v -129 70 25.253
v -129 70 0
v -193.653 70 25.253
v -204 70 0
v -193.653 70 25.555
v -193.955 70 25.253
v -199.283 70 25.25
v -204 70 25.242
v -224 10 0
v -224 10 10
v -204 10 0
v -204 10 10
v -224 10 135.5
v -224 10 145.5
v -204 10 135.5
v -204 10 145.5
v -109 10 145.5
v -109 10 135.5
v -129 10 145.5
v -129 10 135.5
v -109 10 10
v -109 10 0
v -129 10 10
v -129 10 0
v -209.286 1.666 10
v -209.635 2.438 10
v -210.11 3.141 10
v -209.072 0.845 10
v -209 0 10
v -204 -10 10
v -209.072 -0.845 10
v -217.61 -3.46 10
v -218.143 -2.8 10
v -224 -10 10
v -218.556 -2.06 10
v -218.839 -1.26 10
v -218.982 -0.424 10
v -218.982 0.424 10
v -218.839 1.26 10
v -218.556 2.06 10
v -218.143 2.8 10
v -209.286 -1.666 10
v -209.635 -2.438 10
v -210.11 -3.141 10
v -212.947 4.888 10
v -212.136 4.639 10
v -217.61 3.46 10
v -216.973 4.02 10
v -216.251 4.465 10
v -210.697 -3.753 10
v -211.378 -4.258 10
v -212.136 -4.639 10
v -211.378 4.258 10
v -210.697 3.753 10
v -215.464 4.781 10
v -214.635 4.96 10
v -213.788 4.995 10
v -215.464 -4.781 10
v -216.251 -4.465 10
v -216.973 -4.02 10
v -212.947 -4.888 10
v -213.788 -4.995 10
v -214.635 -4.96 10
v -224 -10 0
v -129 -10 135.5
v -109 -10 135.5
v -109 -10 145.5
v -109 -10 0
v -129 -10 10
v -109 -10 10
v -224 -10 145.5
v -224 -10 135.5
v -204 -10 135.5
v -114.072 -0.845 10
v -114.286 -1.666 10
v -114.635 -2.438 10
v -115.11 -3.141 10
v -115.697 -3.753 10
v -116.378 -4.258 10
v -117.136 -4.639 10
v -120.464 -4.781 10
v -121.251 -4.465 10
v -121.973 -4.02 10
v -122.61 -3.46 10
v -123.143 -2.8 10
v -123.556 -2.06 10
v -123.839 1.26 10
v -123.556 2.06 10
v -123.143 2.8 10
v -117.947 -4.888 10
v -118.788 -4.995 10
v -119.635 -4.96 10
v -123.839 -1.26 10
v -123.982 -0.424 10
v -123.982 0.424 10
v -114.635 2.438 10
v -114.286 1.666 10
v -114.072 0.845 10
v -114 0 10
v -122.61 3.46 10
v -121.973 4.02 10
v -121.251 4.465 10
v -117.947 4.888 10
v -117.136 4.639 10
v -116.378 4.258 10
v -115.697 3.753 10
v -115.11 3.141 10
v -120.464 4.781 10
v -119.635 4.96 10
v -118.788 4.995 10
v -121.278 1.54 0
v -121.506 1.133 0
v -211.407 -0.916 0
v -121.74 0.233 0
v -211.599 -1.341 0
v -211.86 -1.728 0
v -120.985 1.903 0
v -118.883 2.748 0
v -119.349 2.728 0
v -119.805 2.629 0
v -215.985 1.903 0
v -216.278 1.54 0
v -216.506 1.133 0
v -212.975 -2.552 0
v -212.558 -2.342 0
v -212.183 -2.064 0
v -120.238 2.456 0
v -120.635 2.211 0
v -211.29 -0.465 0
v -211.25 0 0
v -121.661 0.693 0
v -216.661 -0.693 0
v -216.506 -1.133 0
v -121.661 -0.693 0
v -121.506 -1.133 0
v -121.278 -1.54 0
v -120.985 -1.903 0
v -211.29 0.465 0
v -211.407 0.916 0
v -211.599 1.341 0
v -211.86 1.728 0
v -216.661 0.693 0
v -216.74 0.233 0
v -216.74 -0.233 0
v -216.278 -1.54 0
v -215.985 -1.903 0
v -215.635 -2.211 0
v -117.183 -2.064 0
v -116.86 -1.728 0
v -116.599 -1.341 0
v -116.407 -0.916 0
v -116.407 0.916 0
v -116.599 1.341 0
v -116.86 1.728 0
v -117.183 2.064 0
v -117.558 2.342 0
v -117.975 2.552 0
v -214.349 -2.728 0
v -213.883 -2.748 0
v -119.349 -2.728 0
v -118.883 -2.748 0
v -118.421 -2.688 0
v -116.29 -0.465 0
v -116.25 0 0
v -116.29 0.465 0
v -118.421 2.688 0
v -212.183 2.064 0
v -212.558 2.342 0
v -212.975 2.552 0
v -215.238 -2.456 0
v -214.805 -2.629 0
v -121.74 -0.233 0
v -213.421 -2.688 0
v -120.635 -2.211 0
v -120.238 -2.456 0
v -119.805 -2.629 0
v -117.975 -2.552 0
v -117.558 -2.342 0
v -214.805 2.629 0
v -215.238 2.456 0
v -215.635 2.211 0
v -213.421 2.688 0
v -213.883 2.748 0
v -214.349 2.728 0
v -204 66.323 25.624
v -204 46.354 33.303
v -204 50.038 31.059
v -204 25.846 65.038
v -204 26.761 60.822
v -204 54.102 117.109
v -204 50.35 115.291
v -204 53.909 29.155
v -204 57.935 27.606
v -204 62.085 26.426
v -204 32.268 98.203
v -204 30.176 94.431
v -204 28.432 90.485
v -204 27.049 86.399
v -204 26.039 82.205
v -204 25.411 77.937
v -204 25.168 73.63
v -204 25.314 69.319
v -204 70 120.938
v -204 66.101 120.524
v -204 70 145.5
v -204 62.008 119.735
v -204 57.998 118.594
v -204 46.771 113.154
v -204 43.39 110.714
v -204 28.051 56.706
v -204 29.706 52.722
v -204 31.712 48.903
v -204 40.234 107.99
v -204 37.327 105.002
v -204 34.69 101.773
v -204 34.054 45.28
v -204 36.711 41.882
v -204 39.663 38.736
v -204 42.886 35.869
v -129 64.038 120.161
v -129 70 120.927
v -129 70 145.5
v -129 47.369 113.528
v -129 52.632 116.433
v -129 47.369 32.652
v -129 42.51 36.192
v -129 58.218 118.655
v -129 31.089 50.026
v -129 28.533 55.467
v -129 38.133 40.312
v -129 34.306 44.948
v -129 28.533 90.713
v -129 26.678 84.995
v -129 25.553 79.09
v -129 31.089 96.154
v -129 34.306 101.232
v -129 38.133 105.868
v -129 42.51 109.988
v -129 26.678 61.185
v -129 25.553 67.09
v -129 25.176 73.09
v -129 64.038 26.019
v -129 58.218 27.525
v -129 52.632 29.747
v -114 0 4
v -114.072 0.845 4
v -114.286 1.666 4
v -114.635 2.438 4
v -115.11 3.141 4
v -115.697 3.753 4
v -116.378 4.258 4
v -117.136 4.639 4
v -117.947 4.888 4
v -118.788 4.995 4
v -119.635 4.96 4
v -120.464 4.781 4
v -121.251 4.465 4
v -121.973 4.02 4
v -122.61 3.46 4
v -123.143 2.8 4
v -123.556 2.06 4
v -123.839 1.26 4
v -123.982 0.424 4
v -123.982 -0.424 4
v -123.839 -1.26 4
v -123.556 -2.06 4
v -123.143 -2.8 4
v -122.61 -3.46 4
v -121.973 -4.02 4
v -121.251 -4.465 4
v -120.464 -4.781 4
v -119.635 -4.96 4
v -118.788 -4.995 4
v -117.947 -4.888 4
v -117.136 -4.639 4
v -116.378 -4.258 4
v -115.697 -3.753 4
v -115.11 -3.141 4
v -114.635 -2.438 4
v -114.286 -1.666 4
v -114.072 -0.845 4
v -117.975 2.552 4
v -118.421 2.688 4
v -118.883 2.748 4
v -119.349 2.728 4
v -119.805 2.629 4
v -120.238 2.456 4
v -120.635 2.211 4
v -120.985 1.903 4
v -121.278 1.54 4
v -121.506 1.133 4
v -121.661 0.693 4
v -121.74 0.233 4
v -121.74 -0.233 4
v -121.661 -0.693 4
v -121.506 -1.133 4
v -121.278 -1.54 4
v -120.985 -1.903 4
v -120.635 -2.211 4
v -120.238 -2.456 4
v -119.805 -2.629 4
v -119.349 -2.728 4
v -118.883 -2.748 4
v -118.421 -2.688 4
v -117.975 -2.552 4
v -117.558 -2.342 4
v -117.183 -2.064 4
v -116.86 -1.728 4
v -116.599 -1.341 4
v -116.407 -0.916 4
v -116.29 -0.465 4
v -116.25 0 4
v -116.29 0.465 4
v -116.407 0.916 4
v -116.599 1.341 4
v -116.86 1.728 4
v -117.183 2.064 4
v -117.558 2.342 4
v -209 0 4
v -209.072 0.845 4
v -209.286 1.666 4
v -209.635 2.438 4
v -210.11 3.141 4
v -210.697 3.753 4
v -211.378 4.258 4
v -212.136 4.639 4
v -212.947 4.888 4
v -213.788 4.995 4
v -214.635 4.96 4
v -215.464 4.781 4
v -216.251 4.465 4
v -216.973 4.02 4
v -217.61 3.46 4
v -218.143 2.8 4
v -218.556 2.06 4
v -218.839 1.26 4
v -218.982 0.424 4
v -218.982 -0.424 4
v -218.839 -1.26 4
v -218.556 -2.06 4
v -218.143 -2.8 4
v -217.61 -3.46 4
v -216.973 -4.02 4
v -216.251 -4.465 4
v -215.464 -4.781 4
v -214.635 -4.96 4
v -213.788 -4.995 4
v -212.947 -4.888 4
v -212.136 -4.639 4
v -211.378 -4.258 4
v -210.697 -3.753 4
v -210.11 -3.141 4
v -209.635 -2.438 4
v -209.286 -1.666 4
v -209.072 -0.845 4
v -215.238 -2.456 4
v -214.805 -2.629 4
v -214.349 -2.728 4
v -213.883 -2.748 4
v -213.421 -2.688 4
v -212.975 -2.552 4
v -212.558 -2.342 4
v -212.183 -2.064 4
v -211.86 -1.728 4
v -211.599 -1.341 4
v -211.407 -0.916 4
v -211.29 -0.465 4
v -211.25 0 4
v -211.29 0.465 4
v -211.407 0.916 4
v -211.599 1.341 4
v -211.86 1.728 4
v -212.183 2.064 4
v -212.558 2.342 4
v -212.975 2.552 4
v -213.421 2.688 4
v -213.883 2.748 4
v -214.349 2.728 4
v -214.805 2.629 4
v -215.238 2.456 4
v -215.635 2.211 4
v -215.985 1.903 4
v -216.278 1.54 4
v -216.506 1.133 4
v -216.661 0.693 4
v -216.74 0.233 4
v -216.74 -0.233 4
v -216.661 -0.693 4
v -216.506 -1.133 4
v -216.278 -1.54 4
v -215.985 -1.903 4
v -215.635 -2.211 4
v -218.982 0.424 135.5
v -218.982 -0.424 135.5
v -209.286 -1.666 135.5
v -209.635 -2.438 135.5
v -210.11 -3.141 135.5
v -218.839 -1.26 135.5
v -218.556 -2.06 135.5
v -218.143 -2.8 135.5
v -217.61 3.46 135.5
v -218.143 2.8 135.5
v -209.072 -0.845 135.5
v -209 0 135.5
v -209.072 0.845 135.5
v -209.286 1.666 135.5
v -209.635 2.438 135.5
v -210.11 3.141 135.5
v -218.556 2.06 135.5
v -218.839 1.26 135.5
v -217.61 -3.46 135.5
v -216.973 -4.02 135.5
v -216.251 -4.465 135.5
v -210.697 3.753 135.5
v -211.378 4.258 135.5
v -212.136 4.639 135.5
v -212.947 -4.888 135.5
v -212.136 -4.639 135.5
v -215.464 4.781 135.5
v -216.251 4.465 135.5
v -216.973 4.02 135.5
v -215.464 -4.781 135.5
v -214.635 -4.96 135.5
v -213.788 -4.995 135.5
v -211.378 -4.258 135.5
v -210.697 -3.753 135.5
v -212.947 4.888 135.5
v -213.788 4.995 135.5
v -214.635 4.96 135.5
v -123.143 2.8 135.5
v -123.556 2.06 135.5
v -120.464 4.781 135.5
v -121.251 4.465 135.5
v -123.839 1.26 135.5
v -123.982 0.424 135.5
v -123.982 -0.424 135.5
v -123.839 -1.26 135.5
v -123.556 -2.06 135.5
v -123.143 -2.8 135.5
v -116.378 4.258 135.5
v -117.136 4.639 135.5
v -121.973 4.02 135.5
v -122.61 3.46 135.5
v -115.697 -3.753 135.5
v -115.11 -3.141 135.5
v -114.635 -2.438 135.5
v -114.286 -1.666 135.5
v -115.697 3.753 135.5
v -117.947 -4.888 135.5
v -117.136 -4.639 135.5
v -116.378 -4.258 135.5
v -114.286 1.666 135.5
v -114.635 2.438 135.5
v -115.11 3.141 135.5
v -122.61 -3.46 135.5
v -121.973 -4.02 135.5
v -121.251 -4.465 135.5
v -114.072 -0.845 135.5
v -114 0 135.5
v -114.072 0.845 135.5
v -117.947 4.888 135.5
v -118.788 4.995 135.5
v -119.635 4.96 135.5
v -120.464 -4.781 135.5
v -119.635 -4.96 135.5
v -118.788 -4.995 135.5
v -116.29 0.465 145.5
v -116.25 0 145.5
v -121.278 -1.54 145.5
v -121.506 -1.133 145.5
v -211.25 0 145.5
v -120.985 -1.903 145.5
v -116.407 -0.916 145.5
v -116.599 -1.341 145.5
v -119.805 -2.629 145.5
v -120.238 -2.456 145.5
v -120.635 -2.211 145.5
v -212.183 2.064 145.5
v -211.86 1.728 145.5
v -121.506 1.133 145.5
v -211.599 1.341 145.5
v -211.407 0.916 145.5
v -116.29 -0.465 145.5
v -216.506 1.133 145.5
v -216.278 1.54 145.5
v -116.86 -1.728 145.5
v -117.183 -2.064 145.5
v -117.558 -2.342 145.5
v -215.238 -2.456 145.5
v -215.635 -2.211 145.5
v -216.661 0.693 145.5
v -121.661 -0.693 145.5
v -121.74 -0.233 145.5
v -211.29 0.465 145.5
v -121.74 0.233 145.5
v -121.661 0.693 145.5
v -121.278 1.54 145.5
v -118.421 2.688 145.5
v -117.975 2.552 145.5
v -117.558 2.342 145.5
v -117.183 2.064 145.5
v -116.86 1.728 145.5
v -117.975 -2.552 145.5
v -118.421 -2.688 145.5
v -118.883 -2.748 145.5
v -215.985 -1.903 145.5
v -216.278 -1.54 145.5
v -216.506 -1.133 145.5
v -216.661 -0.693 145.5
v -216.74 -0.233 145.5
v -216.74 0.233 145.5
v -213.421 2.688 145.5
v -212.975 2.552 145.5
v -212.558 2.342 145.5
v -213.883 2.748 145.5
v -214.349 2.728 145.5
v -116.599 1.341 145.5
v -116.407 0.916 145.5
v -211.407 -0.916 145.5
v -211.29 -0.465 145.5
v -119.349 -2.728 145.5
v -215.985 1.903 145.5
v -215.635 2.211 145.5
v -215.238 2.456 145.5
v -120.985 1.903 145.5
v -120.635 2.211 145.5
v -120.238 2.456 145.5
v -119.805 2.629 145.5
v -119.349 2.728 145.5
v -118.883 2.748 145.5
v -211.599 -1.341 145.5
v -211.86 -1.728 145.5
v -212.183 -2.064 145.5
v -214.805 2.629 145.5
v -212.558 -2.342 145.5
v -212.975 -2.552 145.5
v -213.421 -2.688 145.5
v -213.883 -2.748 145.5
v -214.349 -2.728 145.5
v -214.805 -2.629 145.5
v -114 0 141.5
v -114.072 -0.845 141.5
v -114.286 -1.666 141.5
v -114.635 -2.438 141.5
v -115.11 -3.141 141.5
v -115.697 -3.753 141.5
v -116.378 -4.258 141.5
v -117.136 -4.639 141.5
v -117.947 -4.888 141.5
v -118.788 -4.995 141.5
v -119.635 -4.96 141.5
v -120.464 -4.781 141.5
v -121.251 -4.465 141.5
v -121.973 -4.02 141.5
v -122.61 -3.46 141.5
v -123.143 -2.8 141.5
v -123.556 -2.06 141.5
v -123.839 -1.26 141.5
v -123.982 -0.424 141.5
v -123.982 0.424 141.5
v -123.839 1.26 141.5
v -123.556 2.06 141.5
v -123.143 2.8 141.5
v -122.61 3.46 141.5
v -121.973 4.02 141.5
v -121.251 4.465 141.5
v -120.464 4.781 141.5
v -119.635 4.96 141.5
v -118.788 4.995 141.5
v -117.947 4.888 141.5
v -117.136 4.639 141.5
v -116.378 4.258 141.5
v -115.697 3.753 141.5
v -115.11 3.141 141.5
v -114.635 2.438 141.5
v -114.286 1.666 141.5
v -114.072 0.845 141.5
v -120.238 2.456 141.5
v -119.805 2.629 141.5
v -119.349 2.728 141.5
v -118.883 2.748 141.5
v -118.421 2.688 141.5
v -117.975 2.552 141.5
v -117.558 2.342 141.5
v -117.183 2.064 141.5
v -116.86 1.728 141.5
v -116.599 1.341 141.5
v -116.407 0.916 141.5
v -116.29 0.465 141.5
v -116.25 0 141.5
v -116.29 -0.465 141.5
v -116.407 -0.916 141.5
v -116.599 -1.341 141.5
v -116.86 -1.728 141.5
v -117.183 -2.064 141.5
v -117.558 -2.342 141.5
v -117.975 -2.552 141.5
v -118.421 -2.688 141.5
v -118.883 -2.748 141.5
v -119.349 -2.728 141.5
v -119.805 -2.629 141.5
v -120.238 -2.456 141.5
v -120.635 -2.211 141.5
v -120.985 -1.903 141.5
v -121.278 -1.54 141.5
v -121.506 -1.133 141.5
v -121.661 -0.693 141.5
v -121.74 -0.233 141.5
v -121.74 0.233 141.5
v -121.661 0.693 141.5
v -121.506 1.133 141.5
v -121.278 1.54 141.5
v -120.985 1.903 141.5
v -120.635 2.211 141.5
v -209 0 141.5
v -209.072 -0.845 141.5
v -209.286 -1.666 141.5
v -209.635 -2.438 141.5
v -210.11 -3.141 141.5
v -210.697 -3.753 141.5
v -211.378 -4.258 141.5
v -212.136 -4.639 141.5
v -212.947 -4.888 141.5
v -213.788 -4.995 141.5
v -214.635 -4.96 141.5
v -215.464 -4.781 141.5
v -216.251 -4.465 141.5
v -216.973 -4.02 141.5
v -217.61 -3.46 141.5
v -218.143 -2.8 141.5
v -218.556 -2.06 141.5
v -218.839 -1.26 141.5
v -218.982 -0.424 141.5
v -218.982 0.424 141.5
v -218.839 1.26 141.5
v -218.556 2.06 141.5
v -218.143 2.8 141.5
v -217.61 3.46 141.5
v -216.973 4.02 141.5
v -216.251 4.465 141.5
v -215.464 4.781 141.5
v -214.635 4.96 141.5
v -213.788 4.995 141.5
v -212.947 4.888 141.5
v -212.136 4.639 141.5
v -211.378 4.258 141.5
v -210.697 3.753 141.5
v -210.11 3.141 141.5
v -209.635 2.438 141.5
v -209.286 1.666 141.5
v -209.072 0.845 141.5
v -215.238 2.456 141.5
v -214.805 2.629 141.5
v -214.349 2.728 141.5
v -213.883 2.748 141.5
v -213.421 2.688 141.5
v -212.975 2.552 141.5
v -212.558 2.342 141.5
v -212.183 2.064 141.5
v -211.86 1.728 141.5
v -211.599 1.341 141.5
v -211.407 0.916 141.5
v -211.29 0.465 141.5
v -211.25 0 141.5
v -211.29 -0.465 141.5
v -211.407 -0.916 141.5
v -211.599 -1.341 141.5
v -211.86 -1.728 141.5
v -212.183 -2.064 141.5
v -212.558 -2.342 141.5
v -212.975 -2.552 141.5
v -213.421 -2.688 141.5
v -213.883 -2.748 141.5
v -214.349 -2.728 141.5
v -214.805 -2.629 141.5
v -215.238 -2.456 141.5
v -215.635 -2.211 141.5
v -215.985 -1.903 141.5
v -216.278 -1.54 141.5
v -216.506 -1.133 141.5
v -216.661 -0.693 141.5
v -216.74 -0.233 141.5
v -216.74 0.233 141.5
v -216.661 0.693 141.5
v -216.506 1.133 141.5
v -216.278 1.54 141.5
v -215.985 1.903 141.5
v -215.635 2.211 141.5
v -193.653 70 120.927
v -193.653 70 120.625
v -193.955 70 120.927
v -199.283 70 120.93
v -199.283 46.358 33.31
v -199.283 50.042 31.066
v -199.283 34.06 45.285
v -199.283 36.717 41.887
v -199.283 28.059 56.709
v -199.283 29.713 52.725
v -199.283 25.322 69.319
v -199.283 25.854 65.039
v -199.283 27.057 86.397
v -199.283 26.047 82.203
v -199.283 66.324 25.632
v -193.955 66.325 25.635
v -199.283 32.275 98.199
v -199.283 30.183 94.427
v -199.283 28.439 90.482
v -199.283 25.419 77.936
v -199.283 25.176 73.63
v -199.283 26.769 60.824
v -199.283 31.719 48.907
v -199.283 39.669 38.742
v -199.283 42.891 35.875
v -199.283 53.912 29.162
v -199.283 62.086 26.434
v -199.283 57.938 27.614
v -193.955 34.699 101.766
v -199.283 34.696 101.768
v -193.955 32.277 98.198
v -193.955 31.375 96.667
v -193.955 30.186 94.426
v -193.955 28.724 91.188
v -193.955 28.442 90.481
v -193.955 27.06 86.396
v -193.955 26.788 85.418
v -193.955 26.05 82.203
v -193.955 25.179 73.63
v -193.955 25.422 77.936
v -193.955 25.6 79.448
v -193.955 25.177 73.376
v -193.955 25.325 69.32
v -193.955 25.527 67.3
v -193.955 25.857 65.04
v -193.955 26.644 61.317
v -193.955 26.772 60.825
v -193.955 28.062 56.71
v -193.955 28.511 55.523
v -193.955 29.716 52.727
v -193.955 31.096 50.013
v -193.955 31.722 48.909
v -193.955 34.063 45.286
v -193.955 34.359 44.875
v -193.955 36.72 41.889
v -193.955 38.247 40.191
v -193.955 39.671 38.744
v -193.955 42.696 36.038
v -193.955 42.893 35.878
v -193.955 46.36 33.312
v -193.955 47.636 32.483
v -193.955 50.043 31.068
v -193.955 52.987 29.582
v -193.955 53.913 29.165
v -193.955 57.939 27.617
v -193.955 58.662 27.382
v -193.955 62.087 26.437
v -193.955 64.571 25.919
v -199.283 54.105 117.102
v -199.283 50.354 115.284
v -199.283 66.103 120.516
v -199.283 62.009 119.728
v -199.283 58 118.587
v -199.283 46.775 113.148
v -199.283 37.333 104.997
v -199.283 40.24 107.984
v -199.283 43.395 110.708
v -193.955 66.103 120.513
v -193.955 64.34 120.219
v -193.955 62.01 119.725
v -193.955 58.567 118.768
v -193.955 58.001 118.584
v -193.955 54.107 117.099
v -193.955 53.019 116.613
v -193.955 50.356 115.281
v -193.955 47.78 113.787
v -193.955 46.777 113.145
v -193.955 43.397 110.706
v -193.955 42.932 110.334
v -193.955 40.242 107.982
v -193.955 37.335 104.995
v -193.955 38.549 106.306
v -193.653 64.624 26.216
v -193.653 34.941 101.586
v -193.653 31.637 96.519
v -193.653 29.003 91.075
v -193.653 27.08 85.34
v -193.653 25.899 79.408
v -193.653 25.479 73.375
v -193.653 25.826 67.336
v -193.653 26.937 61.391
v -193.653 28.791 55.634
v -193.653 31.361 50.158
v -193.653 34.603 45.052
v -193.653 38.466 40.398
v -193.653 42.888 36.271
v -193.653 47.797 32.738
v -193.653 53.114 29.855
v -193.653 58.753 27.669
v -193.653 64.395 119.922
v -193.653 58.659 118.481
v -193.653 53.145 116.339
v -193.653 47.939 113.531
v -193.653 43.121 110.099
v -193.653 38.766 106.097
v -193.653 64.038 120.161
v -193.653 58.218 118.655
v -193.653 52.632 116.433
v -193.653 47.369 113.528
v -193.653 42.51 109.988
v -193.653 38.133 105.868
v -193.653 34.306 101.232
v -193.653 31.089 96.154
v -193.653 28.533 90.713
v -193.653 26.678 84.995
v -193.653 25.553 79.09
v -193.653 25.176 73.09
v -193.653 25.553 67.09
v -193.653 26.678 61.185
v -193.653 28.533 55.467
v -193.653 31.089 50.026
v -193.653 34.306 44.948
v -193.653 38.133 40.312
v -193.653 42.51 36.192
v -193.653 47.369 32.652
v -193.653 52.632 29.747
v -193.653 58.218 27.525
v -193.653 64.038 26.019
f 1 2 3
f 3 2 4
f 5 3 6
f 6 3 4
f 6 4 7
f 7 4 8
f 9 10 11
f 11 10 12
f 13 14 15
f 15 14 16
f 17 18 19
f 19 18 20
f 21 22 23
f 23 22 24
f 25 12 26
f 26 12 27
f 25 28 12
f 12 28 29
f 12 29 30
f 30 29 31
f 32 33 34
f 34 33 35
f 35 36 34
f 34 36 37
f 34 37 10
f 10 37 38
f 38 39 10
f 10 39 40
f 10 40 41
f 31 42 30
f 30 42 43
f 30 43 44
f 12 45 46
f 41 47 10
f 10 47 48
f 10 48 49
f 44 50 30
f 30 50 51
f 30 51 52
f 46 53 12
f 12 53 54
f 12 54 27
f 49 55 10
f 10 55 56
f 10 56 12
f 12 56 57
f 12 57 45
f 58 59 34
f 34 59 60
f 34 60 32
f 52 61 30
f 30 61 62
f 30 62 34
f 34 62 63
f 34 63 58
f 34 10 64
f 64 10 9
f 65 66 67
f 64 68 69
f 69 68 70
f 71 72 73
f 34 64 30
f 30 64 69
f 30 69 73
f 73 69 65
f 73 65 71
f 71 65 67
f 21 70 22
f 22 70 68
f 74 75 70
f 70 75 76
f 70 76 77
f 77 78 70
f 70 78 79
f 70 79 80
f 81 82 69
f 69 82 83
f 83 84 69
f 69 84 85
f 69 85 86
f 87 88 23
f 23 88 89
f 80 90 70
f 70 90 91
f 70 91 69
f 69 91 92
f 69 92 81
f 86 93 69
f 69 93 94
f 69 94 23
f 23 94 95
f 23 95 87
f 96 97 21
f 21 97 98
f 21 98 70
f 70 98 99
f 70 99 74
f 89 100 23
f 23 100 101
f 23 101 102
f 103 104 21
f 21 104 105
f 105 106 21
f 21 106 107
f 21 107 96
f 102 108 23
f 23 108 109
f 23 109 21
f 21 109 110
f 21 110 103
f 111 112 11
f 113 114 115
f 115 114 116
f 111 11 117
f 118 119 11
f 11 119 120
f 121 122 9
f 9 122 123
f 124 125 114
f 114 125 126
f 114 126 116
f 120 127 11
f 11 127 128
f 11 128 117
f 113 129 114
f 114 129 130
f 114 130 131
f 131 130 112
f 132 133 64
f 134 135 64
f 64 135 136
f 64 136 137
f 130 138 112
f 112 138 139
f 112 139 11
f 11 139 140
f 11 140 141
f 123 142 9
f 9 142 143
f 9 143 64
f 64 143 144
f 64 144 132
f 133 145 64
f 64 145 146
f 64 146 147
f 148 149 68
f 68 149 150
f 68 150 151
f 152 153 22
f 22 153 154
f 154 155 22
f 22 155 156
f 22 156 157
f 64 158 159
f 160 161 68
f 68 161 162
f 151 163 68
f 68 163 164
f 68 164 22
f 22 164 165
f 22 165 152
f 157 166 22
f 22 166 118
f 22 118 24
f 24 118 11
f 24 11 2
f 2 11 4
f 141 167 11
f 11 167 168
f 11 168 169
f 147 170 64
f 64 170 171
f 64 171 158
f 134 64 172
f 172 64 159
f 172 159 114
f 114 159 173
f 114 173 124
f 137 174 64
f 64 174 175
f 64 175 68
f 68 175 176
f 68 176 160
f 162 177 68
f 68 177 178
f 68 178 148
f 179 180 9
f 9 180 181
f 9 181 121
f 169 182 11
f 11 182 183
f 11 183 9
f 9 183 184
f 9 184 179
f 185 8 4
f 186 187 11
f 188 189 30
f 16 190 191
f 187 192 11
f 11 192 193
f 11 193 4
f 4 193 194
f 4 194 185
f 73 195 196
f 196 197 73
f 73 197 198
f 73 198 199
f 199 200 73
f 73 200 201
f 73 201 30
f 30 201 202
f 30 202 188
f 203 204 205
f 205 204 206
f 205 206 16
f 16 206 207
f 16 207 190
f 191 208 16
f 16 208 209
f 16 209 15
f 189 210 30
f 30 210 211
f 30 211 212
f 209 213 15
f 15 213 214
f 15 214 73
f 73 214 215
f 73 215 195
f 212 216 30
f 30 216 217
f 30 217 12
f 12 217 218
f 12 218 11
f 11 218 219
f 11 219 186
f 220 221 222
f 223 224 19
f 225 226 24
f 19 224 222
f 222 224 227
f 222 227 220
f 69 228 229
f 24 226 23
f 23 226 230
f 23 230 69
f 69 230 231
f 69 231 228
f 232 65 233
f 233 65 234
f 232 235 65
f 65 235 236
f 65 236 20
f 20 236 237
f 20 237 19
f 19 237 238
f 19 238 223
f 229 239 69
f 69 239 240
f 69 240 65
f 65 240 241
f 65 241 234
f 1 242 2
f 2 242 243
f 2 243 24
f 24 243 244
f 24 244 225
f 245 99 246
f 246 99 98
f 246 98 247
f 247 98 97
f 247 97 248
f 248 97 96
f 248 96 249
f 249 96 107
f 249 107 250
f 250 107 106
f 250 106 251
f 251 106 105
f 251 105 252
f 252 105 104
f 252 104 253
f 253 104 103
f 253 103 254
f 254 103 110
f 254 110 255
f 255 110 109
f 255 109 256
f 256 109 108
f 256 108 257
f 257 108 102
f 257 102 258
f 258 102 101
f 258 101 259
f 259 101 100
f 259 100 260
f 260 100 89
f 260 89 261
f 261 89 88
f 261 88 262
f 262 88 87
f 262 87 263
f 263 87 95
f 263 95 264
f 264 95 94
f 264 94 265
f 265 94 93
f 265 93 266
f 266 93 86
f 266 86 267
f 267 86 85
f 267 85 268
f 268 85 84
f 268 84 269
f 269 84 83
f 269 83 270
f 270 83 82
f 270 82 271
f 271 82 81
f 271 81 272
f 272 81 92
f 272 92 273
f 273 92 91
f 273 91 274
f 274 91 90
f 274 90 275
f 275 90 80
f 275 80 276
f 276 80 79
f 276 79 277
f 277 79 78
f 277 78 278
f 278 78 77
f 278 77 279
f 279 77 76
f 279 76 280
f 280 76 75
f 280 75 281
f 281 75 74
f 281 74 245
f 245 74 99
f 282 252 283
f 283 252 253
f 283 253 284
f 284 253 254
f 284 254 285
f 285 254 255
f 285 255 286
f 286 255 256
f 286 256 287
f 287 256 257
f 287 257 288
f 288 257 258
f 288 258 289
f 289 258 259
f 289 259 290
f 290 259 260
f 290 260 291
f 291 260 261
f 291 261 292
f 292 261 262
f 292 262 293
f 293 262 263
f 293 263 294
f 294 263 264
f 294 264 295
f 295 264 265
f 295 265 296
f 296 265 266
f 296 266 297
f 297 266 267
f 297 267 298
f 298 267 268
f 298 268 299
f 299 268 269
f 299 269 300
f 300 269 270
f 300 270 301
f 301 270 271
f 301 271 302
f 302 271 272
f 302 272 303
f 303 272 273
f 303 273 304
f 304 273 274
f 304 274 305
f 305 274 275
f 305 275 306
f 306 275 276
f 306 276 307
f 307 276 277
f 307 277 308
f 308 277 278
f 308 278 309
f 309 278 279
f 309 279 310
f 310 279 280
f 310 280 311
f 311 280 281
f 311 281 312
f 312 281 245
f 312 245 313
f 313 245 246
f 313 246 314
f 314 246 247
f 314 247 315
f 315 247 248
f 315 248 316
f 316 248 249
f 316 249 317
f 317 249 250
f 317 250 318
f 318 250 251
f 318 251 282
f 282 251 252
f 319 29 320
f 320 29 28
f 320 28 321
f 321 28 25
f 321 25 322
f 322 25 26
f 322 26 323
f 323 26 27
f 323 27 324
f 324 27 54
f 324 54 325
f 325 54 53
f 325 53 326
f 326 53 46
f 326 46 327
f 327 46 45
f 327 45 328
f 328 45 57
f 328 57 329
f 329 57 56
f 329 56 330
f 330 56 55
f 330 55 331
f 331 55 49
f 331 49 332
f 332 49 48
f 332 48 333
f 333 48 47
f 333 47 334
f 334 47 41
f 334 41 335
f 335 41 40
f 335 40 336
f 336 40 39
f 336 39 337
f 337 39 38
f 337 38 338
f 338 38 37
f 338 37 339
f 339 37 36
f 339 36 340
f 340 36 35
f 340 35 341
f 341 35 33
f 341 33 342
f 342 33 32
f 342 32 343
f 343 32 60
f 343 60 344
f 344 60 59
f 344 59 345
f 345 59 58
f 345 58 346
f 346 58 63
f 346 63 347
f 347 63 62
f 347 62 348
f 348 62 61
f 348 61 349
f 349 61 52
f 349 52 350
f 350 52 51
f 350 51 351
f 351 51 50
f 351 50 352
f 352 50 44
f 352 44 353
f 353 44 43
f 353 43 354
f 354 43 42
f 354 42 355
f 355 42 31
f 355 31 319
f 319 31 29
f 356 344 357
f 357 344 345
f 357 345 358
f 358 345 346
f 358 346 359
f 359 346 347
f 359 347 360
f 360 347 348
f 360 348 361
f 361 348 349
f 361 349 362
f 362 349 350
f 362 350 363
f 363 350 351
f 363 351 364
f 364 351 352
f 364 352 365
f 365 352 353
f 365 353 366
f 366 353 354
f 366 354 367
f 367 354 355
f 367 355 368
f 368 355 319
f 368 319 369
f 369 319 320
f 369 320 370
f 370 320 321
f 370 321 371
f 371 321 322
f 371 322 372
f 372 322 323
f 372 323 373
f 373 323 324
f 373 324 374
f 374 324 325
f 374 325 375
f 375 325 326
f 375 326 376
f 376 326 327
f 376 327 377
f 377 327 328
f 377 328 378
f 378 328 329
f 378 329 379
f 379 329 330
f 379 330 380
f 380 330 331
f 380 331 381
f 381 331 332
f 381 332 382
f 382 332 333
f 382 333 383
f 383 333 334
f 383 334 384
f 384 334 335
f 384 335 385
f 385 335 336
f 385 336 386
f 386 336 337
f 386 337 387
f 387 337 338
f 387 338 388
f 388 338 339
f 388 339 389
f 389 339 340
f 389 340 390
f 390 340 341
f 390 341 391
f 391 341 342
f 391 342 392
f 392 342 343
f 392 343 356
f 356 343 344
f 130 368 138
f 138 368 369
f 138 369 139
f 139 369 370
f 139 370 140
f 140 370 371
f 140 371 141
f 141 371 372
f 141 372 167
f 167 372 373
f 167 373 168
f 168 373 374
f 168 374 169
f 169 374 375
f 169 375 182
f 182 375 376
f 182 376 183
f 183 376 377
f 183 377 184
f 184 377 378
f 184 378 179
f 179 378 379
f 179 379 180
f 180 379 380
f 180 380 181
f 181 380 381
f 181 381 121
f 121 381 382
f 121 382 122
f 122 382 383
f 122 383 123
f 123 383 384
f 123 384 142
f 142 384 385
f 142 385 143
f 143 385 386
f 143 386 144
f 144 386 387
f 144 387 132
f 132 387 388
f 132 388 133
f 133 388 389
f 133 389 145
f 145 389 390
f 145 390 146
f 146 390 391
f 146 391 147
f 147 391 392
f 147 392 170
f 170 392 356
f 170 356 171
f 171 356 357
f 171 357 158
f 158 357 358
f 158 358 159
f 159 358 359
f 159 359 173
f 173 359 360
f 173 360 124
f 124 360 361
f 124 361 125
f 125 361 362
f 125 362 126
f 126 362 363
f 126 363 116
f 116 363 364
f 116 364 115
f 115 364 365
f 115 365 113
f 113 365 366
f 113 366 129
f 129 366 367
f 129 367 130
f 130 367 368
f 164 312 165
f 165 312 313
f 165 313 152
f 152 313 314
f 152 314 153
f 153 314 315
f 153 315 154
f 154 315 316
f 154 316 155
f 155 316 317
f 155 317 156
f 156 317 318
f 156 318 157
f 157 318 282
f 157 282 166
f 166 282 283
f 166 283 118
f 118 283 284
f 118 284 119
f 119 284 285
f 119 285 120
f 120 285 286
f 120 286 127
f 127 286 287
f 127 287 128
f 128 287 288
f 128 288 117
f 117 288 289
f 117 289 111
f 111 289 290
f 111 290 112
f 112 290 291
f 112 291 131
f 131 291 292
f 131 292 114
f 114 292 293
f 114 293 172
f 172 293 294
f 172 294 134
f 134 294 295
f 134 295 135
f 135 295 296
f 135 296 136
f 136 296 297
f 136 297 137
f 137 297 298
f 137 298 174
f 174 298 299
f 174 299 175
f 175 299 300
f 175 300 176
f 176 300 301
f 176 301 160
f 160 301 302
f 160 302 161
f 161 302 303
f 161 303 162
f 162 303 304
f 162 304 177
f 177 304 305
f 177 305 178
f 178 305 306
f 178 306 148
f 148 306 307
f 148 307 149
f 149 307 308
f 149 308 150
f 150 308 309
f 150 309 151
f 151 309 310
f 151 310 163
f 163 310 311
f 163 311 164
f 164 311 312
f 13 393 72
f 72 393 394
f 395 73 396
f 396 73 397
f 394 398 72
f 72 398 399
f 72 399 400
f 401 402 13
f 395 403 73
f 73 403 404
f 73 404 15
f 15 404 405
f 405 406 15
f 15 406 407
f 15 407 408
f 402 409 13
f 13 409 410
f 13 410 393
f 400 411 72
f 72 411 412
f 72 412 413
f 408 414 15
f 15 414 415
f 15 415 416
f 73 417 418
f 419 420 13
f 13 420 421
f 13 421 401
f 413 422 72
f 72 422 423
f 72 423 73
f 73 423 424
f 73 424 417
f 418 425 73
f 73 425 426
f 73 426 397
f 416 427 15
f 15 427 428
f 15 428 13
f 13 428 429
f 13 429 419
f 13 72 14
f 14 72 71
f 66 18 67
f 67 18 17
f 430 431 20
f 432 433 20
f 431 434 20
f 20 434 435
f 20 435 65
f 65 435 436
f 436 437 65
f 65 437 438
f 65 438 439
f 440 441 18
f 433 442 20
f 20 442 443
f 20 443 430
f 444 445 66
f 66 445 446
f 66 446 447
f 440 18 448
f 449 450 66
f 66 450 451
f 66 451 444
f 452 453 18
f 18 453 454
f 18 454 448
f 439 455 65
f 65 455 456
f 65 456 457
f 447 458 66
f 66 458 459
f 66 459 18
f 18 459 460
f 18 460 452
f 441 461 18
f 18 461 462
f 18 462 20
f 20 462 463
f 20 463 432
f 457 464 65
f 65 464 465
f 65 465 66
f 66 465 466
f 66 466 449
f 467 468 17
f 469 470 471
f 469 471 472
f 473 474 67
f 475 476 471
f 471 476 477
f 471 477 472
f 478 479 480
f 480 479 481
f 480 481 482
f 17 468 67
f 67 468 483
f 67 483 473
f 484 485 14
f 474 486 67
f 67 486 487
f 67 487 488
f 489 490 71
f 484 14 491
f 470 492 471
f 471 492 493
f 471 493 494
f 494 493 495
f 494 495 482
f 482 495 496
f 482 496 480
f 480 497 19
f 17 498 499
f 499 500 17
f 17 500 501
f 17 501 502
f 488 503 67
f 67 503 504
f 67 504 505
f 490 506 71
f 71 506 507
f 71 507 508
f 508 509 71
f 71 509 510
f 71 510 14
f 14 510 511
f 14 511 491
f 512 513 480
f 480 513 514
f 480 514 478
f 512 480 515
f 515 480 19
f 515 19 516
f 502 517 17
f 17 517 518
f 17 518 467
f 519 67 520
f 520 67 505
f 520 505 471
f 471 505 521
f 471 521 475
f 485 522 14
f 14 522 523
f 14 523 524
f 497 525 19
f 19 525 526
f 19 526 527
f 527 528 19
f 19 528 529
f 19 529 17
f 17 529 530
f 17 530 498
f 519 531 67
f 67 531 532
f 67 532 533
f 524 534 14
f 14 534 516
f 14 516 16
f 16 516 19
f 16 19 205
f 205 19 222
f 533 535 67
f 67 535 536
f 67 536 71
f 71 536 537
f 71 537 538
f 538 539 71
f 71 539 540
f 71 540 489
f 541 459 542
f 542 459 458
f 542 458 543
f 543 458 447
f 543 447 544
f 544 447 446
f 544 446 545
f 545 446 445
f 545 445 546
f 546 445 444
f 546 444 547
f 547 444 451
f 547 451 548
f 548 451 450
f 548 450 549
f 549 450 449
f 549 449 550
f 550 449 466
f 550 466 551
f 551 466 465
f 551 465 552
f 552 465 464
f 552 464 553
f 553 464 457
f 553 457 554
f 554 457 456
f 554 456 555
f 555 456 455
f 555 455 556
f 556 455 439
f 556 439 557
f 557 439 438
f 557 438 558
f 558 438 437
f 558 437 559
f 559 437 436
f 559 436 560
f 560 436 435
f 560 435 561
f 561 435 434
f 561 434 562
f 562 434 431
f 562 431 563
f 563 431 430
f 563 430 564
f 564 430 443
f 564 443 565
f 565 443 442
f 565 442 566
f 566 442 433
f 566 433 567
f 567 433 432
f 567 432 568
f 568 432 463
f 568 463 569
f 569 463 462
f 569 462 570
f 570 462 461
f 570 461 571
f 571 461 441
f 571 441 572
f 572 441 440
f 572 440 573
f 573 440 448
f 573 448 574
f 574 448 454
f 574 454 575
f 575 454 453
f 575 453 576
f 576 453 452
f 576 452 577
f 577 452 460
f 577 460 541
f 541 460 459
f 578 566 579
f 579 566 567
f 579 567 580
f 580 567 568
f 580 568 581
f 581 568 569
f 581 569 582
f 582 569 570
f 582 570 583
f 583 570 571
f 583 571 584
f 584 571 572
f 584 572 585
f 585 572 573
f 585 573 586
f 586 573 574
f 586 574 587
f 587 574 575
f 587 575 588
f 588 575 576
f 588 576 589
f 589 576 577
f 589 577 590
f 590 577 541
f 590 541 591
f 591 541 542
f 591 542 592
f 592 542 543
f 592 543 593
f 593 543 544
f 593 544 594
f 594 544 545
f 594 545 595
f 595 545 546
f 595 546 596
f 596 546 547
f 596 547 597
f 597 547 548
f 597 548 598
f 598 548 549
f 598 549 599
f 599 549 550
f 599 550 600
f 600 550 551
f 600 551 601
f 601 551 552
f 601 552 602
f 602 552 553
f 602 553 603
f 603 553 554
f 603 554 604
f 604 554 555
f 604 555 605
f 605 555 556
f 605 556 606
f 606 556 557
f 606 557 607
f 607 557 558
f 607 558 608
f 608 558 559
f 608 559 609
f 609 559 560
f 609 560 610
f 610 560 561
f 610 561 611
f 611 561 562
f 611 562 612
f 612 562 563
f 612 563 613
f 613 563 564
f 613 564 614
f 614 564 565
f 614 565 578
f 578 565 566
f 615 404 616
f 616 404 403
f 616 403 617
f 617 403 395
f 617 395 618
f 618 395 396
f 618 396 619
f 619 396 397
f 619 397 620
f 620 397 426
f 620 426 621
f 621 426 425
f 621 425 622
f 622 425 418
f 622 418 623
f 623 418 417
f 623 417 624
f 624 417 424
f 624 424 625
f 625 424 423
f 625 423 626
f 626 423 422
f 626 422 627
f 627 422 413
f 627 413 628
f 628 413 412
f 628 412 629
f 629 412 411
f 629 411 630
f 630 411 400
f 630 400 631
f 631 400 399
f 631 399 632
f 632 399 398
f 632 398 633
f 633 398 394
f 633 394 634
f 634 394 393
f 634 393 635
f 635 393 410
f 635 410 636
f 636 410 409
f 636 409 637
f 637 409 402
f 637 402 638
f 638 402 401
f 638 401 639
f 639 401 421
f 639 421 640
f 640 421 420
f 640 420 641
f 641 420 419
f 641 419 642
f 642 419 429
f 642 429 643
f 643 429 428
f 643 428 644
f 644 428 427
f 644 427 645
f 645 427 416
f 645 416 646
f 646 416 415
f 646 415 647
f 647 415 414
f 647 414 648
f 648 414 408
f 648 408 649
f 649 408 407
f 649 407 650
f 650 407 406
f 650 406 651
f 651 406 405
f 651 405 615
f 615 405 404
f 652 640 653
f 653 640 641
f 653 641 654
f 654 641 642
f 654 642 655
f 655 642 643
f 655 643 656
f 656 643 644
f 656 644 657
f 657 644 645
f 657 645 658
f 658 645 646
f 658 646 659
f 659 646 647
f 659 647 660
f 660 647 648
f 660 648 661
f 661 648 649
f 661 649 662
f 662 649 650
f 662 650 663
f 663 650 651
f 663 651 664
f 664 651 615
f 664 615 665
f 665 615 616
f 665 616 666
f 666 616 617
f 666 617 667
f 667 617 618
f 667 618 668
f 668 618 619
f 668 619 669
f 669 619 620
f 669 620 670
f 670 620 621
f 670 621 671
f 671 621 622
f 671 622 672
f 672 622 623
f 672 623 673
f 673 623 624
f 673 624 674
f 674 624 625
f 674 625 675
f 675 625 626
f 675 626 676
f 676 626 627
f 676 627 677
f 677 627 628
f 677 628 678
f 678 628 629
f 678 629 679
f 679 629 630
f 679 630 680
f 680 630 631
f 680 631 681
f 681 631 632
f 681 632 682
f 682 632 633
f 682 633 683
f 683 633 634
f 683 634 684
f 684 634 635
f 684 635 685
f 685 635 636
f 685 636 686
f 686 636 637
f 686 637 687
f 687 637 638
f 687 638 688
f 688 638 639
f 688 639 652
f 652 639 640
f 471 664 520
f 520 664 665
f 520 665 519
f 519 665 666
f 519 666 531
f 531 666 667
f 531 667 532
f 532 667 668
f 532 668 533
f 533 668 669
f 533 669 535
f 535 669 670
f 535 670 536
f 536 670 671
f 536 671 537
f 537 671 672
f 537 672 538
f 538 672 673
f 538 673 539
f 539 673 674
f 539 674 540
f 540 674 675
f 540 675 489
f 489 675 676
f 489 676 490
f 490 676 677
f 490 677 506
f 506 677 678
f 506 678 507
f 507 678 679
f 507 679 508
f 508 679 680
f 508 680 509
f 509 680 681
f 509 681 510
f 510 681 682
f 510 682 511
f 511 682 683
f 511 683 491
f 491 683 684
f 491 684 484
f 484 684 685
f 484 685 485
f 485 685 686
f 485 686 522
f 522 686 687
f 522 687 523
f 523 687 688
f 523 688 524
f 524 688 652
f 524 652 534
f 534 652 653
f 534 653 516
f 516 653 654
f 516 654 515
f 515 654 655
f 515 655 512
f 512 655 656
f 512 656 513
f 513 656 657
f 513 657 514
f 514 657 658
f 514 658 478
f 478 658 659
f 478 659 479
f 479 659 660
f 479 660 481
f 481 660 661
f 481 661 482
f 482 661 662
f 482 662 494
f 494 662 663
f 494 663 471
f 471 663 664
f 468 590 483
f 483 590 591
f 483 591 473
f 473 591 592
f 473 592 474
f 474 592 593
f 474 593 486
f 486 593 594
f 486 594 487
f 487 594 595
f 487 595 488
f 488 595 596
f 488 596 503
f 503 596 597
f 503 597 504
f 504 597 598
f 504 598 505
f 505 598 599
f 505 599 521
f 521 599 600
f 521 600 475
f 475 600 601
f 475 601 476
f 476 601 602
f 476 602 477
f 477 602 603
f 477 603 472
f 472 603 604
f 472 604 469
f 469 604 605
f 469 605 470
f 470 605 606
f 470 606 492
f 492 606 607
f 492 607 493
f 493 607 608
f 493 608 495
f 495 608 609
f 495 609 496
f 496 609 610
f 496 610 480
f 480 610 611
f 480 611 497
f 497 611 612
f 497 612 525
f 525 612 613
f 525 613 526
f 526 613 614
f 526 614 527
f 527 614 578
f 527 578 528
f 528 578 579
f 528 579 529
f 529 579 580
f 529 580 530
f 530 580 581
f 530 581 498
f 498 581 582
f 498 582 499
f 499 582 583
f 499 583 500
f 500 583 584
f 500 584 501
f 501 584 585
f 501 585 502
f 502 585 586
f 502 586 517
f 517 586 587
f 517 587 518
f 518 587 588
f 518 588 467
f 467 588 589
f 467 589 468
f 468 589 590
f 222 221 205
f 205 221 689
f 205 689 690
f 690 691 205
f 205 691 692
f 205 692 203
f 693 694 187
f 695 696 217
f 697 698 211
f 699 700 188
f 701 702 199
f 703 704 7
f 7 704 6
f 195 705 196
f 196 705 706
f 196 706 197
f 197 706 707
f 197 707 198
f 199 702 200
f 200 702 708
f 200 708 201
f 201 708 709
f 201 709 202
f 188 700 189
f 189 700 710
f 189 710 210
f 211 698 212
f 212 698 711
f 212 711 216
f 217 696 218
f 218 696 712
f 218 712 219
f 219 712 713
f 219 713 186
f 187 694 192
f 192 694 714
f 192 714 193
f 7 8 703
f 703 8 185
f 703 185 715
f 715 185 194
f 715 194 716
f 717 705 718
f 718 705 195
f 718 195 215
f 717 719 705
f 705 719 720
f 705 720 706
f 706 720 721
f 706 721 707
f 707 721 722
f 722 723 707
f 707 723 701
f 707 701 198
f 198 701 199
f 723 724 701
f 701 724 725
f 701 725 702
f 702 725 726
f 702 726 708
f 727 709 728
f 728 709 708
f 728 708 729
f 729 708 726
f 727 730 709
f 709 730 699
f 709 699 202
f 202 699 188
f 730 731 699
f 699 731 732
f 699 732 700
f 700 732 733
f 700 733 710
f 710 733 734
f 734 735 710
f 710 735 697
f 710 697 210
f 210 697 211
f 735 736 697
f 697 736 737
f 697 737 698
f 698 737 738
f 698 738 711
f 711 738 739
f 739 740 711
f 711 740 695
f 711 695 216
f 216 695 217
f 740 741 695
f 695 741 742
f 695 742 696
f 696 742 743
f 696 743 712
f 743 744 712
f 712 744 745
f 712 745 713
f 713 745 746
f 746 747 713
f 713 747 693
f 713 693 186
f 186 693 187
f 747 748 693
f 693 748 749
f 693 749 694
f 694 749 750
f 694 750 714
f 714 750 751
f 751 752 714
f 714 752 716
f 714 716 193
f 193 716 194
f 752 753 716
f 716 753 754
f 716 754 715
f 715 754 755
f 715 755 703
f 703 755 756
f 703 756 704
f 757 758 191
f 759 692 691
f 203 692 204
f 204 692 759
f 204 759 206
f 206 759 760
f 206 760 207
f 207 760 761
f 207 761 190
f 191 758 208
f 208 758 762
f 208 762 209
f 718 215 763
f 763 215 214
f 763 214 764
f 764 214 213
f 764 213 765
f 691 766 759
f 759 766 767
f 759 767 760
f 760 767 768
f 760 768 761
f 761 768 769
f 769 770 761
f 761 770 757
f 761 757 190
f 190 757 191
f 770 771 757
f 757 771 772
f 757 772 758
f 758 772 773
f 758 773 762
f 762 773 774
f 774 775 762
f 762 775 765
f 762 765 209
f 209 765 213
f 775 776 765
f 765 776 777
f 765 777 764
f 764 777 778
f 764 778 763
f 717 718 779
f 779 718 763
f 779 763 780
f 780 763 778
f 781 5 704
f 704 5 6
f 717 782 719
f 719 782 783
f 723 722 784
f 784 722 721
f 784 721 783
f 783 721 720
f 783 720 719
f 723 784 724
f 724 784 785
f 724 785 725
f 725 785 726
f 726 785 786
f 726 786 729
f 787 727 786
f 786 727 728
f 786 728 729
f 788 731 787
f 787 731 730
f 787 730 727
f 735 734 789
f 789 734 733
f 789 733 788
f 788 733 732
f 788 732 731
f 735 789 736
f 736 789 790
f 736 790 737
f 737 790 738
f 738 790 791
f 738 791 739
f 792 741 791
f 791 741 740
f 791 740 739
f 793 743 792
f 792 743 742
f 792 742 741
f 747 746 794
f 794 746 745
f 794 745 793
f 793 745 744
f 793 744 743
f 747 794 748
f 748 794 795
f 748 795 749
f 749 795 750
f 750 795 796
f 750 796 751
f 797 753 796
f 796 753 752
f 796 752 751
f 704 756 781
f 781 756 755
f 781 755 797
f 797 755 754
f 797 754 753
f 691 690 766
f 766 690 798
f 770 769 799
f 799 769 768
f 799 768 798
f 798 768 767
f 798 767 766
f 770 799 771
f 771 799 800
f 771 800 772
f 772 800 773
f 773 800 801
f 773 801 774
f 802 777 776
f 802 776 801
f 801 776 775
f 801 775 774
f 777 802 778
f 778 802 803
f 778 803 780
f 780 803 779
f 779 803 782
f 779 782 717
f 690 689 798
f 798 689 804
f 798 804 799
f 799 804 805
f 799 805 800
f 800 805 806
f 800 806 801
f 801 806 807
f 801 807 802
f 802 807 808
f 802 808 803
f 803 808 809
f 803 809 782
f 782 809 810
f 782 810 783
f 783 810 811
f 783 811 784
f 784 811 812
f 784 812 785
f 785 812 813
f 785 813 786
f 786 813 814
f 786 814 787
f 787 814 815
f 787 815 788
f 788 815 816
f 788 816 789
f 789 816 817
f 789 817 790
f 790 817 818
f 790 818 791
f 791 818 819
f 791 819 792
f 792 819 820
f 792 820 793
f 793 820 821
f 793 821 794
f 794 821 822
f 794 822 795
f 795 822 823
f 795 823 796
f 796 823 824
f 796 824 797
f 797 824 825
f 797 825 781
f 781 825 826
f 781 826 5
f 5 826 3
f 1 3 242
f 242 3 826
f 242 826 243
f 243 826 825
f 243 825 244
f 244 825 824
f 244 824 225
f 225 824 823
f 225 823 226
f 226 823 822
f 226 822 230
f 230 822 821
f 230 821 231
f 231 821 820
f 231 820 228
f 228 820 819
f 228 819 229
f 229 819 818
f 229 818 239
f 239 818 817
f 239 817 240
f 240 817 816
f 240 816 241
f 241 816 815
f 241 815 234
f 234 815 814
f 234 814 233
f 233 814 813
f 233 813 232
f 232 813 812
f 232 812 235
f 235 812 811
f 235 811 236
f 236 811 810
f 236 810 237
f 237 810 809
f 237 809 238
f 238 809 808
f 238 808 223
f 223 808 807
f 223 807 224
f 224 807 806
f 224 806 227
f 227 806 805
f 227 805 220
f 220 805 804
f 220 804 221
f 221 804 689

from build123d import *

# Parameters (mm, degrees)
SKETCH1_W           = 115
SKETCH1_H           = 20
BOSS_EXTRUDE2_DEPTH = 10
SKETCH5_W           = 75
SKETCH5_H           = 20
BOSS_EXTRUDE3_DEPTH = 62.75
SKETCH6_R           = 5
CUT_EXTRUDE1_DEPTH  = 6
SKETCH7_R           = 2.75
CUT_EXTRUDE2_DEPTH  = 233.838060677
SKETCH8_W           = 75
SKETCH8_H           = 145.5
BOSS_EXTRUDE4_DEPTH = 60


# Read off the part's stored shape, not the designer's step: Cavity1
with BuildPart() as part:
    # Sketch1 → Boss-Extrude2 (new body)
    with BuildSketch(Plane.XY):
        with Locations((-166.5, 0)):
            Rectangle(SKETCH1_W, SKETCH1_H)
    boss_extrude2 = extrude(amount=BOSS_EXTRUDE2_DEPTH)

    # Sketch5 → Boss-Extrude3 (add)
    with BuildSketch(Plane.XY.offset(10)):
        with Locations((-166.5, 0)):
            Rectangle(SKETCH5_W, SKETCH5_H)
    boss_extrude3 = extrude(amount=BOSS_EXTRUDE3_DEPTH)

    # Sketch6 → Cut-Extrude1 (cut)
    with BuildSketch(Plane.XY.offset(10)):
        with Locations((-214, 0)):
            Circle(SKETCH6_R)
        with Locations((-119, 0)):
            Circle(SKETCH6_R)
    cut_extrude1 = extrude(amount=-CUT_EXTRUDE1_DEPTH, mode=Mode.SUBTRACT)

    # Sketch7 → Cut-Extrude2 (cut, through all)
    with BuildSketch(Plane.XY.offset(10)):
        with Locations((-214, 0)):
            Circle(SKETCH7_R)
        with Locations((-119, 0)):
            Circle(SKETCH7_R)
    cut_extrude2 = extrude(amount=-CUT_EXTRUDE2_DEPTH, mode=Mode.SUBTRACT)

    # Mirror2: Boss-Extrude2, Boss-Extrude3, Cut-Extrude1, Cut-Extrude2 across plane
    add(boss_extrude2.mirror(Plane.XY.offset(72.75)))
    add(boss_extrude3.mirror(Plane.XY.offset(72.75)))
    add(cut_extrude1.mirror(Plane.XY.offset(72.75)), mode=Mode.SUBTRACT)
    add(cut_extrude2.mirror(Plane.XY.offset(72.75)), mode=Mode.SUBTRACT)

    # Sketch8 → Boss-Extrude4 (add)
    with BuildSketch(Plane(origin=(0, 10, 0), x_dir=(1, 0, 0), z_dir=(0, 1, 0))):
        with Locations((-166.5, -72.75)):
            Rectangle(SKETCH8_W, SKETCH8_H)
    extrude(amount=BOSS_EXTRUDE4_DEPTH)

    # Cavity1 outline → Cavity1 (revolve, cut)
    with BuildSketch(Plane(origin=(0, 73.114724575, 73.090002845), x_dir=(0, 1, 0), z_dir=(0, 0, -1))):
        with BuildLine():
            add(Edge.make_bspline(
                [(47.94959748, -204), (47.942690938, -201.049048949), (47.938709825, -197.719672316), (47.938508062, -193.954796221)],
                knots=[0.884714855, 0.884714855, 0.884714855, 0.884714855, 0.997011473, 0.997011473, 0.997011473, 0.997011473], degree=3))
            Line((47.938508062, -193.954796221), (47.637, -193.653288159))
            Line((47.637, -193.653288159), (47.9385, -193.653288159))
            Line((47.9385, -193.653288159), (47.9385, -129))
            Line((47.9385, -129), (0, -129))
            Line((0, -129), (0, -204.0000001))
            Line((0, -204.0000001), (47.94959748, -204))
        make_face()
    revolve(axis=Axis((0, 73.114724575, 73.090002845), (1, 0, 0)), mode=Mode.SUBTRACT)


solid = part.part
